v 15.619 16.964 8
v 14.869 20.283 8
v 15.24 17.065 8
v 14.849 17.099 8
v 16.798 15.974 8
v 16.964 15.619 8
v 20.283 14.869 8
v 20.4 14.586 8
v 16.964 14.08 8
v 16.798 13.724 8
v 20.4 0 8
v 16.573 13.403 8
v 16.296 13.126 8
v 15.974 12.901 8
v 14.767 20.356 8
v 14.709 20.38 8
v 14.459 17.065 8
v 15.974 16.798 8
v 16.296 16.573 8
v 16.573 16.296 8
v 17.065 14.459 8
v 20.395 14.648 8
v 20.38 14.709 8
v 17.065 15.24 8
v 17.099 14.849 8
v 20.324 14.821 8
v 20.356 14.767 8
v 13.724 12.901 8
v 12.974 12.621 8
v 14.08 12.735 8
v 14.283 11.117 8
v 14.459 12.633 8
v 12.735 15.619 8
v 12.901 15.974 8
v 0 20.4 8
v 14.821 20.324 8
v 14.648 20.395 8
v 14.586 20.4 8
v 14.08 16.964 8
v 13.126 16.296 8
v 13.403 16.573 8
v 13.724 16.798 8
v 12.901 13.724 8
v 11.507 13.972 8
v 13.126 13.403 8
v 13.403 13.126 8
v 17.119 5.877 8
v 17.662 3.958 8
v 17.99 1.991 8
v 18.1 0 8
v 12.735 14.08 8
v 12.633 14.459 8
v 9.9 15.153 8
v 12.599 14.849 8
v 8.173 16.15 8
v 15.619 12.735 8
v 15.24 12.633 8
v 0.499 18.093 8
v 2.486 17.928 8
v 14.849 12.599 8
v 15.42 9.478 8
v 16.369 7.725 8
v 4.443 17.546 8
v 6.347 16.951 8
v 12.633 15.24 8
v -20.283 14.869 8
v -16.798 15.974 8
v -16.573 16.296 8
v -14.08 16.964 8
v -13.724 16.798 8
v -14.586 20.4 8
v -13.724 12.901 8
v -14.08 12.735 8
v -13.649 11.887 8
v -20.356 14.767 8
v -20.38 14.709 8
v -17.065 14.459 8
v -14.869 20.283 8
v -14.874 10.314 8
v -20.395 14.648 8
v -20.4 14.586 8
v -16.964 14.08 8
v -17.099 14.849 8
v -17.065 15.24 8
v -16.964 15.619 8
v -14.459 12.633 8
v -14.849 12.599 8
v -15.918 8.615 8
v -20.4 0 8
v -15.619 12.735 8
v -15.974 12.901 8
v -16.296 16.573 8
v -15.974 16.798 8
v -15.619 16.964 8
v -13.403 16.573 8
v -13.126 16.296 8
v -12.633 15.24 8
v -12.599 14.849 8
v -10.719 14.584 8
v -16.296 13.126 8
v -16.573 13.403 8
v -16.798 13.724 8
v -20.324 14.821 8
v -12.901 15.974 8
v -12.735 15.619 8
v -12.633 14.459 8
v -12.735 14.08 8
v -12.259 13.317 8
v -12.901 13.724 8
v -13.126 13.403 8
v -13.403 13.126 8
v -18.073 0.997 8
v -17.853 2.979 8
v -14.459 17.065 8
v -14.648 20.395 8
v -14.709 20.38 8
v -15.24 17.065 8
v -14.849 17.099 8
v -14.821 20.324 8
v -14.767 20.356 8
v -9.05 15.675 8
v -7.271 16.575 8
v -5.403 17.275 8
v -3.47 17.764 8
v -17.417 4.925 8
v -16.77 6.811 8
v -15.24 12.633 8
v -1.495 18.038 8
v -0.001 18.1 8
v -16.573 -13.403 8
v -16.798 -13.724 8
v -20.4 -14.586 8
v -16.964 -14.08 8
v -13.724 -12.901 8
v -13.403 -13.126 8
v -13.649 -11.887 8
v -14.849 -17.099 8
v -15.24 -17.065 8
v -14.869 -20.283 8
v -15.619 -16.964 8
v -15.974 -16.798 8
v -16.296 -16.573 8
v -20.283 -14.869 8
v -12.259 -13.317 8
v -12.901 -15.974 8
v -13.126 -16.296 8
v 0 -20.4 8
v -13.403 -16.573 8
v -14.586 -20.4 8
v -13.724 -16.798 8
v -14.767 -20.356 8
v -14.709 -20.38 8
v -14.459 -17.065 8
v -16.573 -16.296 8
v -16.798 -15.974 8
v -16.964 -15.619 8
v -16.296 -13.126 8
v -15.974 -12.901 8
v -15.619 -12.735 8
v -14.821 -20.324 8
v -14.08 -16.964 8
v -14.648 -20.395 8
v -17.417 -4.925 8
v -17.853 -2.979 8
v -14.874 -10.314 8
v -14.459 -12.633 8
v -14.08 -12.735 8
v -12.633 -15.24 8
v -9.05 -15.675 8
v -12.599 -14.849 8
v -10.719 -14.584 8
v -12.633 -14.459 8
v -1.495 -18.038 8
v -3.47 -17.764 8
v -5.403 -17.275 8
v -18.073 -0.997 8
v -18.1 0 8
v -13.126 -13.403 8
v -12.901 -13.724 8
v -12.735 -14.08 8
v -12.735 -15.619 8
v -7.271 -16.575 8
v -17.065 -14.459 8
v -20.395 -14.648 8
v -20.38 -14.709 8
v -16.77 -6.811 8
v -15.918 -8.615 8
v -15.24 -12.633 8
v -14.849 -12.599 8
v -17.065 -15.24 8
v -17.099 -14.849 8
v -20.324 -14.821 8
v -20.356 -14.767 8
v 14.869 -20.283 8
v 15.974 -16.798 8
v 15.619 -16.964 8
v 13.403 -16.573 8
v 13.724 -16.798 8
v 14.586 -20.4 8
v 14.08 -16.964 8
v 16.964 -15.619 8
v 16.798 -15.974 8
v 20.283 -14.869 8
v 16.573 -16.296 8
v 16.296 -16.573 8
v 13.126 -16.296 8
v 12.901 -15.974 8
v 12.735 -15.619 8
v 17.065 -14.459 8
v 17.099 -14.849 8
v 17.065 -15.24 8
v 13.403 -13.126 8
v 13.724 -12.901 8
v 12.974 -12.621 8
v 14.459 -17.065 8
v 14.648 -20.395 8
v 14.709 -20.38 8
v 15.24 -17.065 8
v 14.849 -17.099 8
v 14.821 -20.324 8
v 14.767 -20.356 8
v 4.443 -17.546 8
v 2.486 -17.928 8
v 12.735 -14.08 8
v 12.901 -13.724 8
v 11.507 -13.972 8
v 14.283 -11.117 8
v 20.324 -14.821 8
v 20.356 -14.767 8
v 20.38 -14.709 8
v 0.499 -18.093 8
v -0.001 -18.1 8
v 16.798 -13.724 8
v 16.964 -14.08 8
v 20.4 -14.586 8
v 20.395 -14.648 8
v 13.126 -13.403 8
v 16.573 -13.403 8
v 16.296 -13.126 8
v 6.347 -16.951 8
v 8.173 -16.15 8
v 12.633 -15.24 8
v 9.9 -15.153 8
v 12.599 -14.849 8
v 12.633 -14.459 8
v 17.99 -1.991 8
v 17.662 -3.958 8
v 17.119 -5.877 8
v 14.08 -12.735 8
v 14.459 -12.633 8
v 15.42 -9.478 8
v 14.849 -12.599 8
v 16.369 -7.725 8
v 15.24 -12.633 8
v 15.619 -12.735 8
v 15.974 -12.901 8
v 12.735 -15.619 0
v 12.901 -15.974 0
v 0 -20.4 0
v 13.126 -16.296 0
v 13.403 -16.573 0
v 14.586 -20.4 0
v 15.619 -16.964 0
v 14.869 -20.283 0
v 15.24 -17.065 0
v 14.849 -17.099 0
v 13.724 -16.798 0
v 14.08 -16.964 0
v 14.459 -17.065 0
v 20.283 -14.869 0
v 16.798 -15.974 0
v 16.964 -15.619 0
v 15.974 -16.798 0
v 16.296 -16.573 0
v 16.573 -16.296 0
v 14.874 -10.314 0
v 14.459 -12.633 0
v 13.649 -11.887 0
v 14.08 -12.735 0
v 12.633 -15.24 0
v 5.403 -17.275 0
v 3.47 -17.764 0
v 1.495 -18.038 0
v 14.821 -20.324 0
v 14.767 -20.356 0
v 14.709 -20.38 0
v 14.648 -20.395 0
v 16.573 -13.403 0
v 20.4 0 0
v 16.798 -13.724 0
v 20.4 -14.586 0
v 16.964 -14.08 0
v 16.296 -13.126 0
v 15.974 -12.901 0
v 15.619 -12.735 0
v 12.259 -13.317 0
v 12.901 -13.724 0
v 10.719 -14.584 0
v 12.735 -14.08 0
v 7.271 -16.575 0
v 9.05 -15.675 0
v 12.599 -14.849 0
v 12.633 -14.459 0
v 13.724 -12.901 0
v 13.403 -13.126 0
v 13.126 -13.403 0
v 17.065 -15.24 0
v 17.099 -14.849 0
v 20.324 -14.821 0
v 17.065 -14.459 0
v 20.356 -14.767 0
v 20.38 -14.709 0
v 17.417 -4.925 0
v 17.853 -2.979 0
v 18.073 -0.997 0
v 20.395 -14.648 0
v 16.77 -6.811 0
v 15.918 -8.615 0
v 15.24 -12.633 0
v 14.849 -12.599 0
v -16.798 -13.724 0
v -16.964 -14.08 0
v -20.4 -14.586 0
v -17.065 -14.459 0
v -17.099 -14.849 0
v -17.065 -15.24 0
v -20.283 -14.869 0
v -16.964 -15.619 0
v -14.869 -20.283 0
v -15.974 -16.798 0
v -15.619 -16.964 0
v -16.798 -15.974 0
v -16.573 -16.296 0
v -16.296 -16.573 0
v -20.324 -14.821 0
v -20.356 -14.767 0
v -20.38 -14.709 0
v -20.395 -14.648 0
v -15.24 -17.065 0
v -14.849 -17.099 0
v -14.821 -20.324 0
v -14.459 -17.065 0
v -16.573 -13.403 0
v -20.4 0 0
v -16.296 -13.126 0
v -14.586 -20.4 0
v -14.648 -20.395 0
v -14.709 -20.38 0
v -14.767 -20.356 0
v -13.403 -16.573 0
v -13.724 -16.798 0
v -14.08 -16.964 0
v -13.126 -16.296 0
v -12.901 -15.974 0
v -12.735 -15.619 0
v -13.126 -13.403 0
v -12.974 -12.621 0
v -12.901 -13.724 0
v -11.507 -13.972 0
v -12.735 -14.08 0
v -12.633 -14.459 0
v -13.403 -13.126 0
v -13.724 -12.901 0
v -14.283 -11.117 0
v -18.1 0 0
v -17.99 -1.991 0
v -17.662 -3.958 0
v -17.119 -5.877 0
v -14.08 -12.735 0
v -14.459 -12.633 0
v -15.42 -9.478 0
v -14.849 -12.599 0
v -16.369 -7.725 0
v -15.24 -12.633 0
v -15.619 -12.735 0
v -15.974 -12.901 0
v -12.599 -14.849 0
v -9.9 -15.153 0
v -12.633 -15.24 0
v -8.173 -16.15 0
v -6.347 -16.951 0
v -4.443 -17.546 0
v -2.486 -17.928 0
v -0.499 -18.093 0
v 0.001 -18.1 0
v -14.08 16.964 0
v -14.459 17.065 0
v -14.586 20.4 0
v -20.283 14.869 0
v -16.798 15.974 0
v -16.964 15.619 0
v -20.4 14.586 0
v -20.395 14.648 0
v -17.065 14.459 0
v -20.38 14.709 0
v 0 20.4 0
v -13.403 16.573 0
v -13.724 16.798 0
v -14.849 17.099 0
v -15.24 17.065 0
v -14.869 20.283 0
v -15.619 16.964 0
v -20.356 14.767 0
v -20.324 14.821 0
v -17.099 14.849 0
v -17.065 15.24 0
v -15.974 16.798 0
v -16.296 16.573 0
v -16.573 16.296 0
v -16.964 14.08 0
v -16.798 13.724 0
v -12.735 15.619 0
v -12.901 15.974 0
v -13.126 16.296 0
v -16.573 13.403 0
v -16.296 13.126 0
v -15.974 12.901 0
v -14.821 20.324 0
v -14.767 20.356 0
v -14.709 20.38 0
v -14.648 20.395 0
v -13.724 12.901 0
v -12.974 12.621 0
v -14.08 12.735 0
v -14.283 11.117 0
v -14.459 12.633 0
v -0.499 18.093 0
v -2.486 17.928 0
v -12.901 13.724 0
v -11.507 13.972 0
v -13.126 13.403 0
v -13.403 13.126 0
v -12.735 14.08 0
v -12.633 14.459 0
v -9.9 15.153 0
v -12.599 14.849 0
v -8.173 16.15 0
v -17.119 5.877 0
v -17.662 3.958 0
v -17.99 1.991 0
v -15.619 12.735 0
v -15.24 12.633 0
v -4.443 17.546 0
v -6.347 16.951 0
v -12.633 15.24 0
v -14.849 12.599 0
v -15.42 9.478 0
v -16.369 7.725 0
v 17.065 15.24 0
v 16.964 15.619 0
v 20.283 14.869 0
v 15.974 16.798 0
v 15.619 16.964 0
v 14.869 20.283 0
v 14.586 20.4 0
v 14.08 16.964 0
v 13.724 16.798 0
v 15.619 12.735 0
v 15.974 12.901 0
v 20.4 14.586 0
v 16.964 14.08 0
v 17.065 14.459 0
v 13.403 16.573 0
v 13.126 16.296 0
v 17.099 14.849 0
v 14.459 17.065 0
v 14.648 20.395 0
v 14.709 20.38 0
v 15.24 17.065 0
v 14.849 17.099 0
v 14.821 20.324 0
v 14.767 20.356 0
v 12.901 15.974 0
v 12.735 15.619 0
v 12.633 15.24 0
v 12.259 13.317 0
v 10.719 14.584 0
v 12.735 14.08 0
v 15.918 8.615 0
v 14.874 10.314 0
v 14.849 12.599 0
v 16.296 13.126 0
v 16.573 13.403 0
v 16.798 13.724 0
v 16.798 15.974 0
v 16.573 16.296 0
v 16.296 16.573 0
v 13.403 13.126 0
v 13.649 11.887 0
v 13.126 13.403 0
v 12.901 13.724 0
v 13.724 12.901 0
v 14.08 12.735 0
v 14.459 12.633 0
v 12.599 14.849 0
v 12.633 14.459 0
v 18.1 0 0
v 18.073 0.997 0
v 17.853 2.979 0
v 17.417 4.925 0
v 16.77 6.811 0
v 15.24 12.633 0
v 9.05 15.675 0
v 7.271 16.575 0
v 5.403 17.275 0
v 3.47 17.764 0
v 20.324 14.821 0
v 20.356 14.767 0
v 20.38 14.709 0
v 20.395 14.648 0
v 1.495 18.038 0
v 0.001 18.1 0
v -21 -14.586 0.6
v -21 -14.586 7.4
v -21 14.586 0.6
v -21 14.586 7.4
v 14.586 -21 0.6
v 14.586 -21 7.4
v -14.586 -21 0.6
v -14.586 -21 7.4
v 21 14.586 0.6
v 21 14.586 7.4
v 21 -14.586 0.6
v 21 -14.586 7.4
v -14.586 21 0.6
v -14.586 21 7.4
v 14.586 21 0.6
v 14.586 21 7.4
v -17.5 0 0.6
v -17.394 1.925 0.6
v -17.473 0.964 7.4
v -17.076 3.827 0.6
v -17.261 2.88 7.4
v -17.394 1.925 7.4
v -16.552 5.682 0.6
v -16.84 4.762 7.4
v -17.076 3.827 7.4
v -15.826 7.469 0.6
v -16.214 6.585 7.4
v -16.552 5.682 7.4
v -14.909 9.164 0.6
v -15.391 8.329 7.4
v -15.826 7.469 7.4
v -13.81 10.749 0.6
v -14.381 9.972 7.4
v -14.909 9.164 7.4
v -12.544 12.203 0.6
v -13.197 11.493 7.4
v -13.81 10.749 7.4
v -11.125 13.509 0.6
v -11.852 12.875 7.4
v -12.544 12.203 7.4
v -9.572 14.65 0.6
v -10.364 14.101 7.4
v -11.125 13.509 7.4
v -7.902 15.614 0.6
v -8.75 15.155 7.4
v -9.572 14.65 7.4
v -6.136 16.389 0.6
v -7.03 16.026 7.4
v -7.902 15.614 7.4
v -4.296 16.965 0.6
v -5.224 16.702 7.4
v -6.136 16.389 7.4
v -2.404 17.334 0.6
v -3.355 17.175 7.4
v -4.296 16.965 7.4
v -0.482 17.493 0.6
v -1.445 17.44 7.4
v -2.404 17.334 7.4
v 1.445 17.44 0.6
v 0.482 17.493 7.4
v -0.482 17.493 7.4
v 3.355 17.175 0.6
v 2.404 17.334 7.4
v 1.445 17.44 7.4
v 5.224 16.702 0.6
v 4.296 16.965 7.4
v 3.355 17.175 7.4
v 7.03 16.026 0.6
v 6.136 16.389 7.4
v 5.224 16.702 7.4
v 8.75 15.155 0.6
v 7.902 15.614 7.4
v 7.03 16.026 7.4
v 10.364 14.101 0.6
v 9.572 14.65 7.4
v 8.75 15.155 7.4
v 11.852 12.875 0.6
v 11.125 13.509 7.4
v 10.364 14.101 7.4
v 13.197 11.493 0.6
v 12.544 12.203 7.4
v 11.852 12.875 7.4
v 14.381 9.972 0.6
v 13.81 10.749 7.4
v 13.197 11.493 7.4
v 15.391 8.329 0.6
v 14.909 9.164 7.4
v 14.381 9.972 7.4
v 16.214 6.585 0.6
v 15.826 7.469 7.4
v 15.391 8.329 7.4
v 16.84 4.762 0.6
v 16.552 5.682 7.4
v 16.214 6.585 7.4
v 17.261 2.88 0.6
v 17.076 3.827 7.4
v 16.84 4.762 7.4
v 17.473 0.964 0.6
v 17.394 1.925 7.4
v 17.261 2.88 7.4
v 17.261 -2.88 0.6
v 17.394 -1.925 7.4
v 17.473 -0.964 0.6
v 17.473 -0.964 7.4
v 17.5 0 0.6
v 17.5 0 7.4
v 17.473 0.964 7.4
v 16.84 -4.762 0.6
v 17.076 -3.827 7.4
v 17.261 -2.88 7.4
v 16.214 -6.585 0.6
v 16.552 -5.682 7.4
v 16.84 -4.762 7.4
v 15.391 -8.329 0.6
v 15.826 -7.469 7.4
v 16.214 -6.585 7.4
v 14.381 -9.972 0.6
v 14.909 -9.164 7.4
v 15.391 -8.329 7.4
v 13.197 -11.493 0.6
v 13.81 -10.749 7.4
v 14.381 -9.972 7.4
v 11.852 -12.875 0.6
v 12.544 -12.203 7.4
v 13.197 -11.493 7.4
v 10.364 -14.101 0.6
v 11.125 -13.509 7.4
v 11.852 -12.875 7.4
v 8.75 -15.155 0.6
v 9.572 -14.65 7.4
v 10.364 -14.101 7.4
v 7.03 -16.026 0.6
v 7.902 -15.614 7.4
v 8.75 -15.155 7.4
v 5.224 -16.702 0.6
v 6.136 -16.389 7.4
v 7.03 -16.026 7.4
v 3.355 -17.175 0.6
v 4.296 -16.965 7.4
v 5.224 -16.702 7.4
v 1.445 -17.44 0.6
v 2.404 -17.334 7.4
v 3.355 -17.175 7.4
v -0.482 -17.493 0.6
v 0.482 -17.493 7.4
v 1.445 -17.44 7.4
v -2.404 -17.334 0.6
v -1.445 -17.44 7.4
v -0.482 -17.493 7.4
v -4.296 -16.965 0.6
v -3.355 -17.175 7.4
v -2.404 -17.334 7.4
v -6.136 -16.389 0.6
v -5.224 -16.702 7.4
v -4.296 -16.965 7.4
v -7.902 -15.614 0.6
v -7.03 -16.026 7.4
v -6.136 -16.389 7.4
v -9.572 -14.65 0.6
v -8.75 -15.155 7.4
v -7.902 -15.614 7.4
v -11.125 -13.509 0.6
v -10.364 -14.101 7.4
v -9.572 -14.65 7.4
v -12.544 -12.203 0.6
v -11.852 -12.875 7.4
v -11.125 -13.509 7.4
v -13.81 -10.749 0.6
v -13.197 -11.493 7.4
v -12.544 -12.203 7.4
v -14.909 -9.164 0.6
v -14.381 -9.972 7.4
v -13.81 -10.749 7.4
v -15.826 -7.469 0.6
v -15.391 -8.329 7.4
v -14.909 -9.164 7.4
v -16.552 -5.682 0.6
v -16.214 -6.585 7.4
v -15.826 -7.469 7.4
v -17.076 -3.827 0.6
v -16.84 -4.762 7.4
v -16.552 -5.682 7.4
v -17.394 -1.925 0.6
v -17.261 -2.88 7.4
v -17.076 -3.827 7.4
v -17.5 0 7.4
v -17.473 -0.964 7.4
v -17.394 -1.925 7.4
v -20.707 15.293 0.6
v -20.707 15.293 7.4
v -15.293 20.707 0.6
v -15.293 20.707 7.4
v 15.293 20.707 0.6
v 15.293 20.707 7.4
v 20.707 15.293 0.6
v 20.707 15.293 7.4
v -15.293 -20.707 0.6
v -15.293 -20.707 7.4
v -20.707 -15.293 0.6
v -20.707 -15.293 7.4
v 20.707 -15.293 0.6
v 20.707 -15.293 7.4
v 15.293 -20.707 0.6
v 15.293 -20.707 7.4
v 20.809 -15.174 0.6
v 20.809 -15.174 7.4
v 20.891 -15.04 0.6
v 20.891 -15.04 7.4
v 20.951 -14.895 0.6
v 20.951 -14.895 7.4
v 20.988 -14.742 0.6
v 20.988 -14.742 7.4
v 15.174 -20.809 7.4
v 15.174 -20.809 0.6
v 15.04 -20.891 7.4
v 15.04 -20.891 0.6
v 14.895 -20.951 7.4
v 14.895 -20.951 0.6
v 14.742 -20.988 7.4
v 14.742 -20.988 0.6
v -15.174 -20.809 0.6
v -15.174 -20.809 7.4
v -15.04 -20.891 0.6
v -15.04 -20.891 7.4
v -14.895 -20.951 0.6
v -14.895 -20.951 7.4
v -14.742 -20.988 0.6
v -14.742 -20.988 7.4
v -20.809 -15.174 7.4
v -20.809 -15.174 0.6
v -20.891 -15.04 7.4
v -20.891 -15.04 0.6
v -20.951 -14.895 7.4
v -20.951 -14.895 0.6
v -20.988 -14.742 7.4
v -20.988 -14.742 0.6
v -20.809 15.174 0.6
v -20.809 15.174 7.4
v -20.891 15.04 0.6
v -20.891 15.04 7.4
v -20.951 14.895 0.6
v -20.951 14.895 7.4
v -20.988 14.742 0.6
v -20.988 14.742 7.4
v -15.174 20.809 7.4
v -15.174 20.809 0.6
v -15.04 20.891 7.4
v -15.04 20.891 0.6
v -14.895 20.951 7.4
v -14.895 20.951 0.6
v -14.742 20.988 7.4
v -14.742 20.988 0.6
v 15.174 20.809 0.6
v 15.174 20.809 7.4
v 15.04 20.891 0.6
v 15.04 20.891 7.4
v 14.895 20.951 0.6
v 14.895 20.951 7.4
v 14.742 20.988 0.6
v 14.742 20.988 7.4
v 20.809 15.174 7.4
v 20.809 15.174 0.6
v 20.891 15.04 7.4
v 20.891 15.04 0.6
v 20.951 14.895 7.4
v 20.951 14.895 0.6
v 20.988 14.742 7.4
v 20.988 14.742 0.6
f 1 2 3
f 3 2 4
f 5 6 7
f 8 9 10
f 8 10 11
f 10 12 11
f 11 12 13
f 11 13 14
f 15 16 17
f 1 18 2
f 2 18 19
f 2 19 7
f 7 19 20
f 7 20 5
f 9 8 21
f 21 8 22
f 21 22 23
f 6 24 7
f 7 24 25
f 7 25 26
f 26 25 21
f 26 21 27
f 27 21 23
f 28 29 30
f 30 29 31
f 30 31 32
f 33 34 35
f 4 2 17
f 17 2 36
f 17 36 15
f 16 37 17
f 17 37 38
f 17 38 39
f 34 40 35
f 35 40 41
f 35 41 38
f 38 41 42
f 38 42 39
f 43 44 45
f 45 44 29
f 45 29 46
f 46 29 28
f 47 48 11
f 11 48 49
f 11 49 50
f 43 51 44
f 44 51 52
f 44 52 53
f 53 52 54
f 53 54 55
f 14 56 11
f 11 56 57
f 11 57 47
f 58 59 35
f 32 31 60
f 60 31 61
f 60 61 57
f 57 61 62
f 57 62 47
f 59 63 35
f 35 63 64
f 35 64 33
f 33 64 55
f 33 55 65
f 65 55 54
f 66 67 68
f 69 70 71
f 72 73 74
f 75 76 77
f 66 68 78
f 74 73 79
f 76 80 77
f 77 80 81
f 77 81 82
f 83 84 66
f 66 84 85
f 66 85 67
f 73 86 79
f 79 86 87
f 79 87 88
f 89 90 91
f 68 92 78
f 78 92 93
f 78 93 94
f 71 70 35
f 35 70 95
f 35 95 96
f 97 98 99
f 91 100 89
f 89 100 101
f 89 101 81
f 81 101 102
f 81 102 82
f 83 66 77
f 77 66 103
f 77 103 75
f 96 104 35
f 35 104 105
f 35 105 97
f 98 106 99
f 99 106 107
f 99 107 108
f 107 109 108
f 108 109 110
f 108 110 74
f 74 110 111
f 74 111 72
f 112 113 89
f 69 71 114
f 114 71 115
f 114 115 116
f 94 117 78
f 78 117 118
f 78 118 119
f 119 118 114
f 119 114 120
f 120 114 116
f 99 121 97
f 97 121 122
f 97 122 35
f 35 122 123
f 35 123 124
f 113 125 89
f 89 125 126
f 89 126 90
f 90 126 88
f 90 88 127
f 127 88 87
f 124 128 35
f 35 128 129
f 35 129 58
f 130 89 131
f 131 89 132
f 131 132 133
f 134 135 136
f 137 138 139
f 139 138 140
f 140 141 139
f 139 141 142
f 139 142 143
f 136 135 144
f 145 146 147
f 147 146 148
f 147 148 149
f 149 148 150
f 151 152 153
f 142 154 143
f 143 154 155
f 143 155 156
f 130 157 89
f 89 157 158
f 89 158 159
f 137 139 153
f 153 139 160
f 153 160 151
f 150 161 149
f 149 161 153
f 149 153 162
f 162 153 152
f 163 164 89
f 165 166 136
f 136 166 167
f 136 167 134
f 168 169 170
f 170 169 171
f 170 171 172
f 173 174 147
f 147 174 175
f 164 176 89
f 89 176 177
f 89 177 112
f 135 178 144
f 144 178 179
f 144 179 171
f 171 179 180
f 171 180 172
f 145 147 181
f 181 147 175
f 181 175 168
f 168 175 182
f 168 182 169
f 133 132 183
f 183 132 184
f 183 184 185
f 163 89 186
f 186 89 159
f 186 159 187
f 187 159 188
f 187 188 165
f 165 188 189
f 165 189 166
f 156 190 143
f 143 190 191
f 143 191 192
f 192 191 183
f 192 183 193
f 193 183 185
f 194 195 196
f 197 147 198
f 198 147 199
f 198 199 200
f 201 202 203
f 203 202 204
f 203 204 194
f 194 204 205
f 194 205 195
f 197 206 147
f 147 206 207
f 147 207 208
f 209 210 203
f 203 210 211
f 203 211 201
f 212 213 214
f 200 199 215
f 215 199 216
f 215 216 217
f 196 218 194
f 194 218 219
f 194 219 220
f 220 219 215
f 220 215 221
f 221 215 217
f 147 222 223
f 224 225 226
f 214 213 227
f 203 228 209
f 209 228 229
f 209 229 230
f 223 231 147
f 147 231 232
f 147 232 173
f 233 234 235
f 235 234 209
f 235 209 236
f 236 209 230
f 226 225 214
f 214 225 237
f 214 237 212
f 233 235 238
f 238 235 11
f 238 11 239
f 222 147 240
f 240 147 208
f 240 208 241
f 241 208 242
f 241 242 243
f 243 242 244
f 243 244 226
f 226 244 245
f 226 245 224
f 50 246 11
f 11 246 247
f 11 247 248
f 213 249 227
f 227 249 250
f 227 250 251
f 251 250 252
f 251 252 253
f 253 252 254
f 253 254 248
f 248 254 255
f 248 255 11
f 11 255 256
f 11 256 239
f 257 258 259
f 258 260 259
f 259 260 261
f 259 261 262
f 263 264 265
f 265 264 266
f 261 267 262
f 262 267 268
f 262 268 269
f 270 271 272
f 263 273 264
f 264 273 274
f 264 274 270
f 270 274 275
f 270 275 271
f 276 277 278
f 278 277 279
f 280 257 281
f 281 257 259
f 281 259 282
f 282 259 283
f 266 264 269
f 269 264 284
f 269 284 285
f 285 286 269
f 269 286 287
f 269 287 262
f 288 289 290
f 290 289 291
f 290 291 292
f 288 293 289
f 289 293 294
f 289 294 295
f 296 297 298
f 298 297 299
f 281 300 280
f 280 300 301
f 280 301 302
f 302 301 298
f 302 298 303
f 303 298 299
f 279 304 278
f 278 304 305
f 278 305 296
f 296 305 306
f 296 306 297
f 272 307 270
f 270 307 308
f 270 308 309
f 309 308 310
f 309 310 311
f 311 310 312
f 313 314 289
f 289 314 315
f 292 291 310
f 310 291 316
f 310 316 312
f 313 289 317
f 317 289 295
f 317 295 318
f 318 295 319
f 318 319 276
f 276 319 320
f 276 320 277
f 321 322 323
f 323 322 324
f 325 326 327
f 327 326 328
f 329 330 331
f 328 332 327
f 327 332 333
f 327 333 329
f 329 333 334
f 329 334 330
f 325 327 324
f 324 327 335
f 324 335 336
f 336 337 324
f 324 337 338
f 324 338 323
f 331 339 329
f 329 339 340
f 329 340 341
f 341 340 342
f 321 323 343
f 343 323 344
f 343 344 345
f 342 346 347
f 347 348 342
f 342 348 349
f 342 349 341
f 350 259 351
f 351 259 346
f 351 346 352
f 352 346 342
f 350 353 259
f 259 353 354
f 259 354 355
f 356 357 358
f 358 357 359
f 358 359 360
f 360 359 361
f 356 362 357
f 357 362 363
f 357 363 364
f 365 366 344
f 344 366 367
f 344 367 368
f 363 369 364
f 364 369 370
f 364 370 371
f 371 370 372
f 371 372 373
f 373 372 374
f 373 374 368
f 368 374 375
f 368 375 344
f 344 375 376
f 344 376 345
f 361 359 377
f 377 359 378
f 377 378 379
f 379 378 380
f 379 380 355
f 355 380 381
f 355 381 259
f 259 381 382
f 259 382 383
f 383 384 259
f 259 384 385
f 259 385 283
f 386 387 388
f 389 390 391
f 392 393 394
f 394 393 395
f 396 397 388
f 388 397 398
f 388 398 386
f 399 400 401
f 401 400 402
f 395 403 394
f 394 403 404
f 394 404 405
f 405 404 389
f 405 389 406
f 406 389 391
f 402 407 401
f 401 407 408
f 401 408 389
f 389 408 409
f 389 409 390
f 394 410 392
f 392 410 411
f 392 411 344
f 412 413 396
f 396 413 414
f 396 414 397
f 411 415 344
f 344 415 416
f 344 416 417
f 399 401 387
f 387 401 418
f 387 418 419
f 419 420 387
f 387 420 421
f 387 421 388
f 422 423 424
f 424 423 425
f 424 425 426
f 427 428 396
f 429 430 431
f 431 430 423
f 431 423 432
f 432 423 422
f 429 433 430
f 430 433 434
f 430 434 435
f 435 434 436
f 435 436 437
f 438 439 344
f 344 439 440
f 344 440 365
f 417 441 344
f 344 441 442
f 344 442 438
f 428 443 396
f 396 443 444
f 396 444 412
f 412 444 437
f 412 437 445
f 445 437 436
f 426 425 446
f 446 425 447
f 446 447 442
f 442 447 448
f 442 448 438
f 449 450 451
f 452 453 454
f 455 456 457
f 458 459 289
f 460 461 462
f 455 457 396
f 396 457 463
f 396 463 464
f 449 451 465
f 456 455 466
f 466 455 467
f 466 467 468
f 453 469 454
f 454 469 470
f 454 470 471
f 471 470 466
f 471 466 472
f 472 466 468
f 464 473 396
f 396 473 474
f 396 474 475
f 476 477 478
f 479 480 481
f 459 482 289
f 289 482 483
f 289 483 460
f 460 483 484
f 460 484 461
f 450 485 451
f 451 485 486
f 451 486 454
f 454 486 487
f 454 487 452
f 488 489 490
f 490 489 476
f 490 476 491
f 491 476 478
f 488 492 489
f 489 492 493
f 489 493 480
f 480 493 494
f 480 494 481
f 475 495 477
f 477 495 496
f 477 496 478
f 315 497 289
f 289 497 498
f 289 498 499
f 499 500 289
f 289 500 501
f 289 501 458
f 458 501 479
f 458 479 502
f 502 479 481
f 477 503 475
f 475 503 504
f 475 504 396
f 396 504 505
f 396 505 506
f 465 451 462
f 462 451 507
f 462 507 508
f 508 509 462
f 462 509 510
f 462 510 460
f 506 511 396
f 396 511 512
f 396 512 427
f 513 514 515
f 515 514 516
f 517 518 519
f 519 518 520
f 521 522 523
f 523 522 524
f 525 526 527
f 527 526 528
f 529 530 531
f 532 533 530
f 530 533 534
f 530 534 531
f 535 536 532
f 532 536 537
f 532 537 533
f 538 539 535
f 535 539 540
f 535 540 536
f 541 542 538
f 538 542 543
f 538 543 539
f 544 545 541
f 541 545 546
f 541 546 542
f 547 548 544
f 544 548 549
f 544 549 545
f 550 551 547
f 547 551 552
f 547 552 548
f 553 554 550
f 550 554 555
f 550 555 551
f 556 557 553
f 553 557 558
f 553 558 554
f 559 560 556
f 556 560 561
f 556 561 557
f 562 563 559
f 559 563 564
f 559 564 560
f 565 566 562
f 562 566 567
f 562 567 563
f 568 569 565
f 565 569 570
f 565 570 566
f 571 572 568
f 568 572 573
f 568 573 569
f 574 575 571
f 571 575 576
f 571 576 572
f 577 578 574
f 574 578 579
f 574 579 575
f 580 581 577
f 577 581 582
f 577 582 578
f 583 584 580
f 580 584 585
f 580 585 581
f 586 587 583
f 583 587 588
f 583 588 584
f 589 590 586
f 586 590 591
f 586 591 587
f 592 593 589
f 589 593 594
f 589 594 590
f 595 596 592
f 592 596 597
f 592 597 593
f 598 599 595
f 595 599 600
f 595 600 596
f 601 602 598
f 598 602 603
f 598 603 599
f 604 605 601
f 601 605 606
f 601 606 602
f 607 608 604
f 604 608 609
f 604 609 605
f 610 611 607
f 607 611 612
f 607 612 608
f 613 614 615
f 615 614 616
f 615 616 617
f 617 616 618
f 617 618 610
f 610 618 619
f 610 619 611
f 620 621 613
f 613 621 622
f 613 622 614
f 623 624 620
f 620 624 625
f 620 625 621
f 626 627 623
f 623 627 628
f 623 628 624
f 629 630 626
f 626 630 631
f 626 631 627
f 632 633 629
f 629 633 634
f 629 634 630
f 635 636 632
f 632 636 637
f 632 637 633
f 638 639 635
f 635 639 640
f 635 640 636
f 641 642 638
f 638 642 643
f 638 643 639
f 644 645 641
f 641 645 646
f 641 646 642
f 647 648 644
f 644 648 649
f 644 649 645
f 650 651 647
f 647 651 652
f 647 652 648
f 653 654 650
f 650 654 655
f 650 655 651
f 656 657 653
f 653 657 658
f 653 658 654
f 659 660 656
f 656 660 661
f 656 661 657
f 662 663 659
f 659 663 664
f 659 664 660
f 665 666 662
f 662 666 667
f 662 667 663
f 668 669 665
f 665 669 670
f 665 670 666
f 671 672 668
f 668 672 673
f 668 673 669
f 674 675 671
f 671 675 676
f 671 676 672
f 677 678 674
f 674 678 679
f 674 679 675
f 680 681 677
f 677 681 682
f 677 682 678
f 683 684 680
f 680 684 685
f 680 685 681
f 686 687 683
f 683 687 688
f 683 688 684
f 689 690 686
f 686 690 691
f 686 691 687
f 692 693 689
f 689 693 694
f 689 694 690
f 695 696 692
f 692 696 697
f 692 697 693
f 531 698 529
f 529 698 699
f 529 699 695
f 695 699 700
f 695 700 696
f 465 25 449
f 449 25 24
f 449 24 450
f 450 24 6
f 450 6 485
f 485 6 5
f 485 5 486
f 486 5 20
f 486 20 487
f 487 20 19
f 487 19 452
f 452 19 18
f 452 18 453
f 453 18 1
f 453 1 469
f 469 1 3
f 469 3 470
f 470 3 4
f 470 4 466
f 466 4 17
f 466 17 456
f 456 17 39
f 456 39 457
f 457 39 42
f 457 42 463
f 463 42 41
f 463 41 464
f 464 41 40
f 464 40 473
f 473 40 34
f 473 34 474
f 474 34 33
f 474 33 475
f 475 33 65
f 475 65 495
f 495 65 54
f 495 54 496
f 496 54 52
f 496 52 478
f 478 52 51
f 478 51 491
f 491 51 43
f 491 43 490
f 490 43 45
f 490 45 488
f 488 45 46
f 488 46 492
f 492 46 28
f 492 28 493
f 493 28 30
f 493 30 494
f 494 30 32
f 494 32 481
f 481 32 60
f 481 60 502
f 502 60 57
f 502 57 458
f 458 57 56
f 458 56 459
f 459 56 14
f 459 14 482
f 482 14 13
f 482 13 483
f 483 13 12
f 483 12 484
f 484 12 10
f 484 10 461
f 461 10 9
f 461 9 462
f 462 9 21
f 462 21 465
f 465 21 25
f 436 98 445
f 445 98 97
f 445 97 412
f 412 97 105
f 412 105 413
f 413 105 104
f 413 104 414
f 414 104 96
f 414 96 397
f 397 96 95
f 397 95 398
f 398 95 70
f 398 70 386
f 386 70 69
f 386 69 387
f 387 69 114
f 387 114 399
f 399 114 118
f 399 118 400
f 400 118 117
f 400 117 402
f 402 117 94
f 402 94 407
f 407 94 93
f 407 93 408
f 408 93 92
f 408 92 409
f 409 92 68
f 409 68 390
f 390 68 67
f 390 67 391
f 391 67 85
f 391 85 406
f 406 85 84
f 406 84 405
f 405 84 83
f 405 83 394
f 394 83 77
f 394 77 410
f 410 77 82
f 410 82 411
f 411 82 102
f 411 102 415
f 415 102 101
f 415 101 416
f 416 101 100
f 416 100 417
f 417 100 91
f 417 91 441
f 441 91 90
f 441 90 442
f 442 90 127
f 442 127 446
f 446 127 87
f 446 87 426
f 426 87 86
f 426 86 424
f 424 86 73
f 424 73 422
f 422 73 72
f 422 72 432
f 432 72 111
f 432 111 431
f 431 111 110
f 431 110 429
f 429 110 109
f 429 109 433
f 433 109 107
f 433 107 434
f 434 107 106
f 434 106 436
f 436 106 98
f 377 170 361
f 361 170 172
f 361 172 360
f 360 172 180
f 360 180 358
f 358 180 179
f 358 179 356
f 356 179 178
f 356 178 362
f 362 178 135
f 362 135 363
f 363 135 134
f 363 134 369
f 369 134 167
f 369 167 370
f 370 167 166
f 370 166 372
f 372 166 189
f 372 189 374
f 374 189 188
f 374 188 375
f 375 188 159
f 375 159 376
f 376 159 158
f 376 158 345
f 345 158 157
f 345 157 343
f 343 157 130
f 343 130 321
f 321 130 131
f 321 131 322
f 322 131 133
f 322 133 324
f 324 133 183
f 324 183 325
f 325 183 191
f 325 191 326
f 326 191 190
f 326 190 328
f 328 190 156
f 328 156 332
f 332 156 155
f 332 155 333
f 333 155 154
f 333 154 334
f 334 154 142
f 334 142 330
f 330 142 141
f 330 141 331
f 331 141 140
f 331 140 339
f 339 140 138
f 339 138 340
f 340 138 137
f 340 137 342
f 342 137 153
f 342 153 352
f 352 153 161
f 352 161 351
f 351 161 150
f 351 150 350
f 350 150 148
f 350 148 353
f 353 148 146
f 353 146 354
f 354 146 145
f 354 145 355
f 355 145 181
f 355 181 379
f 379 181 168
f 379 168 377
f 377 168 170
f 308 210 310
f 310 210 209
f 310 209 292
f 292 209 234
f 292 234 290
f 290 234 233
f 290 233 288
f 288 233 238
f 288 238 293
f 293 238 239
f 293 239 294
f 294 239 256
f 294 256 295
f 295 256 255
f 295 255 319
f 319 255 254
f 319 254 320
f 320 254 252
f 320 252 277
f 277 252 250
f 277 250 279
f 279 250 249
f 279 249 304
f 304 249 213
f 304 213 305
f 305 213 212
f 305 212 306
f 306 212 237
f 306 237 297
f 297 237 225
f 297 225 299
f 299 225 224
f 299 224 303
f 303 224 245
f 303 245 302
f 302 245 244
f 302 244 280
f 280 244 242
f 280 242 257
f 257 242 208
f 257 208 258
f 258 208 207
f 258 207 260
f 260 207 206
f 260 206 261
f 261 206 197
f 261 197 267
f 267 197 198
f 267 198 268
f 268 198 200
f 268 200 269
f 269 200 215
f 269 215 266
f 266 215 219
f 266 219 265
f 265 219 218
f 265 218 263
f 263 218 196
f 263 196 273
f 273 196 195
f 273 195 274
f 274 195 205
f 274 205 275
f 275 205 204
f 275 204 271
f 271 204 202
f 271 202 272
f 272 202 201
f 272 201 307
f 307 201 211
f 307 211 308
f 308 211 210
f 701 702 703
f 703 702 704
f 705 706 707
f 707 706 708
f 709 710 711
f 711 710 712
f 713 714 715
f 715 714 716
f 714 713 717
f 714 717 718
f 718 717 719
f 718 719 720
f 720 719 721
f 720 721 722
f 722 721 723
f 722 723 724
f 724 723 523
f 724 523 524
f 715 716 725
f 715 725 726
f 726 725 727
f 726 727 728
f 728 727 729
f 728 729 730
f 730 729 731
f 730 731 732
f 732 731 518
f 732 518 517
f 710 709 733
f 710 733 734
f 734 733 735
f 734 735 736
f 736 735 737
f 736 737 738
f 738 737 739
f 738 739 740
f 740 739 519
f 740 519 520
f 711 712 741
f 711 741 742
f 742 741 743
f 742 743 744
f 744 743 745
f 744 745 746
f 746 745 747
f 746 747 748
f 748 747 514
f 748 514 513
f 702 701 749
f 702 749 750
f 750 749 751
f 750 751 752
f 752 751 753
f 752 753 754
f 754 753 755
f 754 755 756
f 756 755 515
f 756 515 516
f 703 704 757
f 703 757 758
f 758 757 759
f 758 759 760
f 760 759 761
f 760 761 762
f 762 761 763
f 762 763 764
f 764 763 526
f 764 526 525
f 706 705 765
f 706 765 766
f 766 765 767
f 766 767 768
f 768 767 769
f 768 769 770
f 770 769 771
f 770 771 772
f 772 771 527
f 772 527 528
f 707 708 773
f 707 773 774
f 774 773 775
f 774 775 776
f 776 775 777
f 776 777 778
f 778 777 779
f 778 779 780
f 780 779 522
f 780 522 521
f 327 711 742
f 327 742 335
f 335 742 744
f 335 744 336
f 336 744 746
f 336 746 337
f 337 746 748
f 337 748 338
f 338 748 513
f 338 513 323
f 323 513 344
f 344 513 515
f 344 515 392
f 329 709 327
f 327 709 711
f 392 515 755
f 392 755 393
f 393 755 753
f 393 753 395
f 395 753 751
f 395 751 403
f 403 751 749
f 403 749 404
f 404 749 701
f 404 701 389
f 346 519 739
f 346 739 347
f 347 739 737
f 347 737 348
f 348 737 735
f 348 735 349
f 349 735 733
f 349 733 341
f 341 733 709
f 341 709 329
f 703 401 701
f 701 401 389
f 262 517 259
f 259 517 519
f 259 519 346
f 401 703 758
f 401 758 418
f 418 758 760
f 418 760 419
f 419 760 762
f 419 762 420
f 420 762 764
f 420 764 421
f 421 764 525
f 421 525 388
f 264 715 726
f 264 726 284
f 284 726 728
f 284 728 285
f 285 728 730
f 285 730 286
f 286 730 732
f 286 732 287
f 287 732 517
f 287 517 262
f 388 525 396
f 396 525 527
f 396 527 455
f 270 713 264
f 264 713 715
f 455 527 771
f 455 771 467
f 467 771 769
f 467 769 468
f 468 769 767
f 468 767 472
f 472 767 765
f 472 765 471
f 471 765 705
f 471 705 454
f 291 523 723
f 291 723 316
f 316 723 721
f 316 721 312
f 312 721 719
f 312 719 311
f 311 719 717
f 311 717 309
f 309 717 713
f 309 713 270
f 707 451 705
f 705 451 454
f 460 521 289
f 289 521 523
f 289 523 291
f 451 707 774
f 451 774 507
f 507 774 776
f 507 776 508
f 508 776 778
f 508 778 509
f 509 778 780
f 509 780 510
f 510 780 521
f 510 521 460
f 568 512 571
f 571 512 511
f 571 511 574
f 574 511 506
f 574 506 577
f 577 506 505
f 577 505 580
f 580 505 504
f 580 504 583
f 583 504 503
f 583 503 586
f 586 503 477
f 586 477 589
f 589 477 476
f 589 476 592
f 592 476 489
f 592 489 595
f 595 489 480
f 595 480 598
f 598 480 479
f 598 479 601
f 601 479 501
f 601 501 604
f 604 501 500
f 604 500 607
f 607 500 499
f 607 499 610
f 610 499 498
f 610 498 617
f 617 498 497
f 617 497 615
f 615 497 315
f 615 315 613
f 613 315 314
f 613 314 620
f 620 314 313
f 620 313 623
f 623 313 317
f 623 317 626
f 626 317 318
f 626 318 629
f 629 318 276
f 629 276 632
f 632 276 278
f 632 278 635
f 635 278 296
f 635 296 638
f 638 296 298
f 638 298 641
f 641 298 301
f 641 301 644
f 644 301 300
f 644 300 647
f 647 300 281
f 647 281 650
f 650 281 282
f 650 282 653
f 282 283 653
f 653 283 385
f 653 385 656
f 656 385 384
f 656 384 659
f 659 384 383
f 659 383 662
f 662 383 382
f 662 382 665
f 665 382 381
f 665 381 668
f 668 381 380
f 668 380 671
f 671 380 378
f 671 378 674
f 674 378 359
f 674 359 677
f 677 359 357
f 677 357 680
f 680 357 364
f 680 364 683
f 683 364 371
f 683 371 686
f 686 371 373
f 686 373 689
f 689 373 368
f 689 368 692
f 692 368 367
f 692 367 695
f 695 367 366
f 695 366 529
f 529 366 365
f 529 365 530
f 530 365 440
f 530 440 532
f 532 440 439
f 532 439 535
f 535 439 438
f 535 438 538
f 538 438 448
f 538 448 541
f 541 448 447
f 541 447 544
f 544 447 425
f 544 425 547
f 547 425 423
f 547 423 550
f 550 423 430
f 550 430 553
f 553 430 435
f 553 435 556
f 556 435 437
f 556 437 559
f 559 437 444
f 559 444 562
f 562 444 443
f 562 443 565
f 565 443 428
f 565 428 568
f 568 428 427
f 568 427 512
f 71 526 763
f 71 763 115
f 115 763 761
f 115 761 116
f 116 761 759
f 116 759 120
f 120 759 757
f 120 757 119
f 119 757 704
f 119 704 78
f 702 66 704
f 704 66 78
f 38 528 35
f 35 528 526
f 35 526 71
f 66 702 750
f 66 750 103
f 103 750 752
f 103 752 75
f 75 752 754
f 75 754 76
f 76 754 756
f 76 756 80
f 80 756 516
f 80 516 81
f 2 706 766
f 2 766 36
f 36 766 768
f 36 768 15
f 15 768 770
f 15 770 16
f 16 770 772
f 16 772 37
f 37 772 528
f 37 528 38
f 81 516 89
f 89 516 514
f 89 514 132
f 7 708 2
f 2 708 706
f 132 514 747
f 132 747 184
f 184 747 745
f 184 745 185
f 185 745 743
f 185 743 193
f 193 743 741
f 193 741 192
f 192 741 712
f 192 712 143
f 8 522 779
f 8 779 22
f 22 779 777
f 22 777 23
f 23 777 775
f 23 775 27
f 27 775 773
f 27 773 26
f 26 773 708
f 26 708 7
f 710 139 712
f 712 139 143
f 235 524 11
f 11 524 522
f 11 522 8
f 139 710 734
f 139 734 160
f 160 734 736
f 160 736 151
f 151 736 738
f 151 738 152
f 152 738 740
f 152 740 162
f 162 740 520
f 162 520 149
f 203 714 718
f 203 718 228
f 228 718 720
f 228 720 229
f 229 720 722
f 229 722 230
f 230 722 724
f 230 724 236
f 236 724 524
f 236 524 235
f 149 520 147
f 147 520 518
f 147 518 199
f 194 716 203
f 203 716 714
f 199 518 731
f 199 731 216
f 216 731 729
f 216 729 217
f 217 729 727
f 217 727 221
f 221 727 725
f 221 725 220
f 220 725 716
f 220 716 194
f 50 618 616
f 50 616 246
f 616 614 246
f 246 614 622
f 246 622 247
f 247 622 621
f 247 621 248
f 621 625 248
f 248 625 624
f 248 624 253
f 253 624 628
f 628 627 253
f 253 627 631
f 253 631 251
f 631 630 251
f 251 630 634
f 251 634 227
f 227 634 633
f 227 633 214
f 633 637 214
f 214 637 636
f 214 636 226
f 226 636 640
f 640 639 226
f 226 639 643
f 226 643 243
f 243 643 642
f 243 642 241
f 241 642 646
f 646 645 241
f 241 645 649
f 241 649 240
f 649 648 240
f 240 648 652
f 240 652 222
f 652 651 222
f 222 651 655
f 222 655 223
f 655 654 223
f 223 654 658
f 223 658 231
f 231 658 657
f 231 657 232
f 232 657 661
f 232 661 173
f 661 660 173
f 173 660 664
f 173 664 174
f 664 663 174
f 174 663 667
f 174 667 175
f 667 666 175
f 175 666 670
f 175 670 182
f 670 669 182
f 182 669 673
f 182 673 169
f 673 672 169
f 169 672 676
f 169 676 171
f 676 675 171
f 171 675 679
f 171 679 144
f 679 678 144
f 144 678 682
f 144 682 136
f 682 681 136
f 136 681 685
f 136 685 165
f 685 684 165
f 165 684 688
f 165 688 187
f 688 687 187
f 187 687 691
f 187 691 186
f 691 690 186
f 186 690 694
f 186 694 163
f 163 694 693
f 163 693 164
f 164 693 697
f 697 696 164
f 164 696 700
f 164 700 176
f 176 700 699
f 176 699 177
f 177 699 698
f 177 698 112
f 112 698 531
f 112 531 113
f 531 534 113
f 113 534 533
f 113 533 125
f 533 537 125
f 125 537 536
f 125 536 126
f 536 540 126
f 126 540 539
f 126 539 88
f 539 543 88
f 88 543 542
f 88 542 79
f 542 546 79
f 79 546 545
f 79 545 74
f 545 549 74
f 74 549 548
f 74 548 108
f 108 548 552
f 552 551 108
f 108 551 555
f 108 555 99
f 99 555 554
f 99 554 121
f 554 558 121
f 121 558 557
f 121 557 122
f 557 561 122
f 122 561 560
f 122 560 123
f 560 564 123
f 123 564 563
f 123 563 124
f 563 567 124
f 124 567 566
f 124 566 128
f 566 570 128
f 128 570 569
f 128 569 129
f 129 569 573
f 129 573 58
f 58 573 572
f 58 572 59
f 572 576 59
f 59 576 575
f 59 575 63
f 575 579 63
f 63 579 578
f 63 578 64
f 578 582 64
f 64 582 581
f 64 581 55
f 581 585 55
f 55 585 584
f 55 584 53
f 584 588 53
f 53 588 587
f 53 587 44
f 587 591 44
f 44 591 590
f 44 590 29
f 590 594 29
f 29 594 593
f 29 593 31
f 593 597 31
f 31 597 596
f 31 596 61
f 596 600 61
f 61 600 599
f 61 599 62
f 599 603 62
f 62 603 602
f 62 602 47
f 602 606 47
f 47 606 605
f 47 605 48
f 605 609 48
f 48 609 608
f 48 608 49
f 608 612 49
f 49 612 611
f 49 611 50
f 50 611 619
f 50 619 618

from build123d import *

# Parameters (mm, degrees)
SKETCH1_W            = 42
SKETCH1_H            = 42
SKETCH1_R            = 17.5
BOSS_EXTRUDE1_DEPTH  = 8
M4_CLEARANCE_HOLE1_D = 4.5
CIRPATTERN1_COUNT    = 4
CHAMFER2_SIZE        = 6
FILLET1_R            = 1
CHAMFER1_SIZE        = 0.6


with BuildPart() as part:
    # Sketch1 → Boss-Extrude1 (new body)
    with BuildSketch(Plane.XY):
        Rectangle(SKETCH1_W, SKETCH1_H)
        Circle(SKETCH1_R, mode=Mode.SUBTRACT)
    extrude(amount=BOSS_EXTRUDE1_DEPTH)

    # M4 Clearance Hole1 (through all)
    with Locations(Plane.XY.offset(8)):
        with Locations((14.849242405, 14.849242405)):
            m4_clearance_hole1 = Hole(M4_CLEARANCE_HOLE1_D / 2)

    # CirPattern1: M4 Clearance Hole1 ×4 about axis
    cirpattern1_axis = Axis((0, 0, 0), (0, 0, 1))
    for i in range(1, CIRPATTERN1_COUNT):
        add(m4_clearance_hole1.rotate(cirpattern1_axis, i * 360 / CIRPATTERN1_COUNT), mode=Mode.SUBTRACT)

    # Chamfer2
    chamfer2_edges = [part.edges().sort_by_distance(p)[0] for p in [
        (-21, 21, 4),
        (21, 21, 4),
        (21, -21, 4),
        (-21, -21, 4),
    ]]
    chamfer(chamfer2_edges, length=CHAMFER2_SIZE)

    # Fillet1
    fillet1_edges = [part.edges().sort_by_distance(p)[0] for p in [
        (-21, -15, 4),
        (-21, 15, 4),
        (15, 21, 4),
        (-15, 21, 4),
        (21, -15, 4),
        (21, 15, 4),
        (15, -21, 4),
        (-15, -21, 4),
    ]]
    fillet(fillet1_edges, radius=FILLET1_R)

    # Chamfer1
    chamfer1_edges = [part.edges().sort_by_distance(p)[0] for p in [
        (-17.5, 0, 0),
        (-17.5, 0, 8),
        (21, 0, 0),
        (21, 0, 8),
        (-21, 0, 0),
        (-18, 18, 0),
        (0, 21, 0),
        (18, 18, 0),
        (18, -18, 0),
        (0, -21, 0),
        (-18, -18, 0),
        (20.923879533, 14.96846987, 0),
        (14.96846987, 20.923879533, 0),
        (-14.96846987, 20.923879533, 0),
        (-20.923879533, 14.96846987, 0),
        (-20.923879533, -14.96846987, 0),
        (-14.96846987, -20.923879533, 0),
        (14.96846987, -20.923879533, 0),
        (20.923879533, -14.96846987, 0),
        (18, -18, 8),
        (0, 21, 8),
        (-18, 18, 8),
        (-21, 0, 8),
        (-18, -18, 8),
        (0, -21, 8),
        (18, 18, 8),
        (20.923879533, 14.96846987, 8),
        (14.96846987, 20.923879533, 8),
        (-14.96846987, 20.923879533, 8),
        (-20.923879533, 14.96846987, 8),
        (-20.923879533, -14.96846987, 8),
        (-14.96846987, -20.923879533, 8),
        (14.96846987, -20.923879533, 8),
        (20.923879533, -14.96846987, 8),
    ]]
    chamfer(chamfer1_edges, length=CHAMFER1_SIZE)


solid = part.part
